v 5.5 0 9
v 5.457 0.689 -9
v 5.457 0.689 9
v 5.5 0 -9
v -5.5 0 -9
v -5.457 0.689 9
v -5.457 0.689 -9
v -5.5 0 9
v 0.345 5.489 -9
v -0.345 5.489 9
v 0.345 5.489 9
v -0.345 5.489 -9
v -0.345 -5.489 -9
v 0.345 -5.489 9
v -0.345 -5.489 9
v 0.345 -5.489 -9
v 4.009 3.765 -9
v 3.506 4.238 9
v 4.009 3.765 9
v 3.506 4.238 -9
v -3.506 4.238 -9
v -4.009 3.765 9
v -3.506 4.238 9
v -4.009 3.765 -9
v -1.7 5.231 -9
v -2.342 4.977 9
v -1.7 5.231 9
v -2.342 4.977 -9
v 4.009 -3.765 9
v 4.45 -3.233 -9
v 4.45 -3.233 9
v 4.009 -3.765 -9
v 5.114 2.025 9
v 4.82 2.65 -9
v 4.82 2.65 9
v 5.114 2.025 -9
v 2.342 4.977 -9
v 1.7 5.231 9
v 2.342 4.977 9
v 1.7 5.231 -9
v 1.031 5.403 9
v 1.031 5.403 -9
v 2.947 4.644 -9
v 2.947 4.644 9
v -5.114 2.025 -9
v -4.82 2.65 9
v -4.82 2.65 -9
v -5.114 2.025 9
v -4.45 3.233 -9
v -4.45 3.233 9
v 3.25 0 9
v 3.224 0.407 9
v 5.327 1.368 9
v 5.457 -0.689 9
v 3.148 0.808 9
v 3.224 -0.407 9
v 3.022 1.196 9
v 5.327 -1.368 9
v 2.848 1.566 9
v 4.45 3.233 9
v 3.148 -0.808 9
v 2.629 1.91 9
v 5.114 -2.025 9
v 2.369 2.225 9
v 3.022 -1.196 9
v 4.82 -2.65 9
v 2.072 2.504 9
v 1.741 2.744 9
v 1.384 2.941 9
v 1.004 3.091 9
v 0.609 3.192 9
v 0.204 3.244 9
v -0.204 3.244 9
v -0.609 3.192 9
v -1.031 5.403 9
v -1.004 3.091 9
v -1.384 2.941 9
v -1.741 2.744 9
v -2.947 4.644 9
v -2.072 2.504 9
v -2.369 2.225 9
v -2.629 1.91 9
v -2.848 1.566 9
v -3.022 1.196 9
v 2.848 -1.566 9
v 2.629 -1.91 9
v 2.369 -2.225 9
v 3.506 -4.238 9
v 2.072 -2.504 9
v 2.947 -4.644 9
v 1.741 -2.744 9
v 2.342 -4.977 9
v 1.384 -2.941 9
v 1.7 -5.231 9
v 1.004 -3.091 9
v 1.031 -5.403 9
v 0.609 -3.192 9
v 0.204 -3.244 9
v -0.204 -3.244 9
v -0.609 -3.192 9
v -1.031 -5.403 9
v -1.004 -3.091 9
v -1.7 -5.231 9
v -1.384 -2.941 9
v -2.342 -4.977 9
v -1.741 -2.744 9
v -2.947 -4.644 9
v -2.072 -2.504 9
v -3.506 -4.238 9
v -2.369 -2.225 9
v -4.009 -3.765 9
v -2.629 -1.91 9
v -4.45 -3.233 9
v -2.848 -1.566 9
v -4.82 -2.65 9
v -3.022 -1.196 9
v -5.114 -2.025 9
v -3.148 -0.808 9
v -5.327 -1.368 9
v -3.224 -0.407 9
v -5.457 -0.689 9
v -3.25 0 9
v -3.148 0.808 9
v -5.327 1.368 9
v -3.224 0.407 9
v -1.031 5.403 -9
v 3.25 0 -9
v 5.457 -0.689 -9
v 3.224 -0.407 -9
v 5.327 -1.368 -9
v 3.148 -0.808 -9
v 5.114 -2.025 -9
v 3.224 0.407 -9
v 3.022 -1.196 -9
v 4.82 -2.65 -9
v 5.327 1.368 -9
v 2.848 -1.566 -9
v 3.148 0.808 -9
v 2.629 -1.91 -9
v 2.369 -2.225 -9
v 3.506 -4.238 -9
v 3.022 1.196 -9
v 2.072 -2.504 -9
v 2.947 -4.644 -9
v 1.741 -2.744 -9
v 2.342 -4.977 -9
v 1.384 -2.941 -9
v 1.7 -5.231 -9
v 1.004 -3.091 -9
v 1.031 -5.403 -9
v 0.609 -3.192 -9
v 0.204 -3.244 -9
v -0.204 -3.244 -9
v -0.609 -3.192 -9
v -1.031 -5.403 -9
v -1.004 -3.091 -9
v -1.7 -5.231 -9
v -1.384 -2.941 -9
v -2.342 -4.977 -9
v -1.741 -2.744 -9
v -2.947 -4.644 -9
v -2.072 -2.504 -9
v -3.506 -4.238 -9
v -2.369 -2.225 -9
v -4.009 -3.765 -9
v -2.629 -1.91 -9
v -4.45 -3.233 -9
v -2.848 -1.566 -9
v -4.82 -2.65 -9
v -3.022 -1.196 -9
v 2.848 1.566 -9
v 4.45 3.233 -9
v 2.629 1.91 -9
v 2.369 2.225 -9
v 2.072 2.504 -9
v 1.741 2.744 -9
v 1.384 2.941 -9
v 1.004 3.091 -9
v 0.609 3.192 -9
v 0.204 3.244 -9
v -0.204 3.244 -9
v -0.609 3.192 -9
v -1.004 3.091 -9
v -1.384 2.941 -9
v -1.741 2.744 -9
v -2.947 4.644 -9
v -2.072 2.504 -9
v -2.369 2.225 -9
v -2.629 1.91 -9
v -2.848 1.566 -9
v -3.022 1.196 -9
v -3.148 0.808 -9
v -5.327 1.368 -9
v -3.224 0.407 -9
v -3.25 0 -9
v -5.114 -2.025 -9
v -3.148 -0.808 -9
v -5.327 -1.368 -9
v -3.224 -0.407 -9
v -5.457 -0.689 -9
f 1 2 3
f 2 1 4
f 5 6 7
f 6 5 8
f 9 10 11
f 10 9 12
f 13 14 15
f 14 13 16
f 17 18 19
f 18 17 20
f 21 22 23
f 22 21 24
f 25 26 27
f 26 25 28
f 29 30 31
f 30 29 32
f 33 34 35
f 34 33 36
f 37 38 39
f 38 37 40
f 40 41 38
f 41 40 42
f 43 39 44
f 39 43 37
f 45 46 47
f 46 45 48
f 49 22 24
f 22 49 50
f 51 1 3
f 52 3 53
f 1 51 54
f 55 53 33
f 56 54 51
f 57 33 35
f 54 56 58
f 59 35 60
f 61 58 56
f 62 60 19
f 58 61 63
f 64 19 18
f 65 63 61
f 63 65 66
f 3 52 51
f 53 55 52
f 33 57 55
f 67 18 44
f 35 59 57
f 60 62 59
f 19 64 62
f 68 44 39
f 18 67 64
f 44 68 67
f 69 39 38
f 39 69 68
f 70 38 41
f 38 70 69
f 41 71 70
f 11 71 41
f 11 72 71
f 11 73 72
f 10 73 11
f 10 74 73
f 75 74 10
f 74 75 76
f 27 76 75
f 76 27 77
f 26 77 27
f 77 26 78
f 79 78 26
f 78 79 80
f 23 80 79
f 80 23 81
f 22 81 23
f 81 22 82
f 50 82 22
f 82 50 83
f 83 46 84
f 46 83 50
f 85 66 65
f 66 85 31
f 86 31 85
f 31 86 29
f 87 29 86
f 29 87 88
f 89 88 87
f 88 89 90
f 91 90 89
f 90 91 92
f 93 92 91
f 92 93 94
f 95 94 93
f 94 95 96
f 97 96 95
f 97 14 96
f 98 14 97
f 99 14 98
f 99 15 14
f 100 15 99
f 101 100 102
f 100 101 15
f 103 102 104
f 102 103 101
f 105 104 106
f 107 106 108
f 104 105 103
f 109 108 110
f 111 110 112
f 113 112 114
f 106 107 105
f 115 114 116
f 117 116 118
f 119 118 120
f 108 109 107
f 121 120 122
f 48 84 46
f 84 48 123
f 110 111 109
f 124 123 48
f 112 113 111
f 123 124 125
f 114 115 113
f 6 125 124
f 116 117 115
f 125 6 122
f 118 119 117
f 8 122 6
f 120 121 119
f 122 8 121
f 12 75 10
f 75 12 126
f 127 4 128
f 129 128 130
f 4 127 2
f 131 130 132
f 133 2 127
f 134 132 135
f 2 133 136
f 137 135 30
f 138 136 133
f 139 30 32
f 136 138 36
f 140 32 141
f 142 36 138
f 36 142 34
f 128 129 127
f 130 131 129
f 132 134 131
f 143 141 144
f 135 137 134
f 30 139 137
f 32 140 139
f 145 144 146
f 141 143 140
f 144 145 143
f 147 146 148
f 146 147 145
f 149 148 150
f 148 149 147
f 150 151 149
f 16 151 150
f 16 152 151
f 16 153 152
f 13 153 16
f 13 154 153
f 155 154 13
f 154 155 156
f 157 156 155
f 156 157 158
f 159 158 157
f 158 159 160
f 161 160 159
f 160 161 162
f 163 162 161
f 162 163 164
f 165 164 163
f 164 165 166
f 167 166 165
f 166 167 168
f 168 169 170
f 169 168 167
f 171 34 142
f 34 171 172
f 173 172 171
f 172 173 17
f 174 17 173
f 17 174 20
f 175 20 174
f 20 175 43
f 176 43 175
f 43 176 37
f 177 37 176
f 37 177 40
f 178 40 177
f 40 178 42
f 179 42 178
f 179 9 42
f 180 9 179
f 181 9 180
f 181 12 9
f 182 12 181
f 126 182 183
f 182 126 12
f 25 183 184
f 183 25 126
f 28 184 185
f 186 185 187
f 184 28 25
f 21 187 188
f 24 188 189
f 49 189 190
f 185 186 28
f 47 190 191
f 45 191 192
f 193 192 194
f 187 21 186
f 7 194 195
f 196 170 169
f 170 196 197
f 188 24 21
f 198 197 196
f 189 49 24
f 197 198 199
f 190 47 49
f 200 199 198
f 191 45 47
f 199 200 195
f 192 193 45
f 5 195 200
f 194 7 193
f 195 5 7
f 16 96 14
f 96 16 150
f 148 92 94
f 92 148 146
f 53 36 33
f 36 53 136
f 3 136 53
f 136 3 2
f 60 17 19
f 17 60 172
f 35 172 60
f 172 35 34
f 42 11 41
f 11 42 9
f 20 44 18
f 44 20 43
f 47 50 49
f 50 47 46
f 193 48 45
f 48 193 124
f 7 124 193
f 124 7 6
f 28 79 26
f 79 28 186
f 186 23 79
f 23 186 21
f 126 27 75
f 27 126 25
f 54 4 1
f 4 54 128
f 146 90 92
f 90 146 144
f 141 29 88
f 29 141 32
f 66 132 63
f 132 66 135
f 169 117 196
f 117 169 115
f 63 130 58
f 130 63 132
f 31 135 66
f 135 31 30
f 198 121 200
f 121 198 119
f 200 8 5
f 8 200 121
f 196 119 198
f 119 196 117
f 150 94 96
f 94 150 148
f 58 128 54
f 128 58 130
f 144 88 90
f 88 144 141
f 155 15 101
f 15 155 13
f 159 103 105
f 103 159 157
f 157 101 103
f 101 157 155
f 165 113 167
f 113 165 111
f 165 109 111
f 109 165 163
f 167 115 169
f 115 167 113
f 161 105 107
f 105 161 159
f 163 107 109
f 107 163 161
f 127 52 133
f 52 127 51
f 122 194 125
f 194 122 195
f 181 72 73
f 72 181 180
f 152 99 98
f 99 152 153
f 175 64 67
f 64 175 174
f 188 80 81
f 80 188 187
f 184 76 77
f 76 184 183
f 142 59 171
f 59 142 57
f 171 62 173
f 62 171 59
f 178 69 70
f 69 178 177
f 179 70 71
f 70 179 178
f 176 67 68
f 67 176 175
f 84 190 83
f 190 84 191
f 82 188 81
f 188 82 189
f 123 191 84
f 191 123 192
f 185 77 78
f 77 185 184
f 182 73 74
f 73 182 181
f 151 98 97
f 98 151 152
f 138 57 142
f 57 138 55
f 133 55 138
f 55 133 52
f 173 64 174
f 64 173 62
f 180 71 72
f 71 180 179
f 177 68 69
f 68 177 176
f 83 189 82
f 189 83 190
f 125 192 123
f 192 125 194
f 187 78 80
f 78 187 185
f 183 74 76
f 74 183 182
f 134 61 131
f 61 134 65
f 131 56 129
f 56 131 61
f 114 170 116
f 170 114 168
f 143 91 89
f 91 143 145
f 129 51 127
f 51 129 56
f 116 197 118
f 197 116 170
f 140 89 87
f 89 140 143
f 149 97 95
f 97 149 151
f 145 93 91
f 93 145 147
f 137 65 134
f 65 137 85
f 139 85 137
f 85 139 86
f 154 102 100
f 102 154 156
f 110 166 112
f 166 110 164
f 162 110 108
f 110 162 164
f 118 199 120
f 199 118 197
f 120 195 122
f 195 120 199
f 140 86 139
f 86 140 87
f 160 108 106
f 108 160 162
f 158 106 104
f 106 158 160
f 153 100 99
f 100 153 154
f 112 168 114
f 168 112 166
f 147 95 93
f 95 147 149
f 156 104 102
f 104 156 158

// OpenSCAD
$fn = 50;


difference() {
	union() {
		translate(v = [0, 0, -9.0000000000]) {
			cylinder(h = 18, r = 5.5000000000);
		}
	}
	union() {
		translate(v = [0, 0, -100.0000000000]) {
			cylinder(h = 200, r = 3.2500000000);
		}
	}
}
